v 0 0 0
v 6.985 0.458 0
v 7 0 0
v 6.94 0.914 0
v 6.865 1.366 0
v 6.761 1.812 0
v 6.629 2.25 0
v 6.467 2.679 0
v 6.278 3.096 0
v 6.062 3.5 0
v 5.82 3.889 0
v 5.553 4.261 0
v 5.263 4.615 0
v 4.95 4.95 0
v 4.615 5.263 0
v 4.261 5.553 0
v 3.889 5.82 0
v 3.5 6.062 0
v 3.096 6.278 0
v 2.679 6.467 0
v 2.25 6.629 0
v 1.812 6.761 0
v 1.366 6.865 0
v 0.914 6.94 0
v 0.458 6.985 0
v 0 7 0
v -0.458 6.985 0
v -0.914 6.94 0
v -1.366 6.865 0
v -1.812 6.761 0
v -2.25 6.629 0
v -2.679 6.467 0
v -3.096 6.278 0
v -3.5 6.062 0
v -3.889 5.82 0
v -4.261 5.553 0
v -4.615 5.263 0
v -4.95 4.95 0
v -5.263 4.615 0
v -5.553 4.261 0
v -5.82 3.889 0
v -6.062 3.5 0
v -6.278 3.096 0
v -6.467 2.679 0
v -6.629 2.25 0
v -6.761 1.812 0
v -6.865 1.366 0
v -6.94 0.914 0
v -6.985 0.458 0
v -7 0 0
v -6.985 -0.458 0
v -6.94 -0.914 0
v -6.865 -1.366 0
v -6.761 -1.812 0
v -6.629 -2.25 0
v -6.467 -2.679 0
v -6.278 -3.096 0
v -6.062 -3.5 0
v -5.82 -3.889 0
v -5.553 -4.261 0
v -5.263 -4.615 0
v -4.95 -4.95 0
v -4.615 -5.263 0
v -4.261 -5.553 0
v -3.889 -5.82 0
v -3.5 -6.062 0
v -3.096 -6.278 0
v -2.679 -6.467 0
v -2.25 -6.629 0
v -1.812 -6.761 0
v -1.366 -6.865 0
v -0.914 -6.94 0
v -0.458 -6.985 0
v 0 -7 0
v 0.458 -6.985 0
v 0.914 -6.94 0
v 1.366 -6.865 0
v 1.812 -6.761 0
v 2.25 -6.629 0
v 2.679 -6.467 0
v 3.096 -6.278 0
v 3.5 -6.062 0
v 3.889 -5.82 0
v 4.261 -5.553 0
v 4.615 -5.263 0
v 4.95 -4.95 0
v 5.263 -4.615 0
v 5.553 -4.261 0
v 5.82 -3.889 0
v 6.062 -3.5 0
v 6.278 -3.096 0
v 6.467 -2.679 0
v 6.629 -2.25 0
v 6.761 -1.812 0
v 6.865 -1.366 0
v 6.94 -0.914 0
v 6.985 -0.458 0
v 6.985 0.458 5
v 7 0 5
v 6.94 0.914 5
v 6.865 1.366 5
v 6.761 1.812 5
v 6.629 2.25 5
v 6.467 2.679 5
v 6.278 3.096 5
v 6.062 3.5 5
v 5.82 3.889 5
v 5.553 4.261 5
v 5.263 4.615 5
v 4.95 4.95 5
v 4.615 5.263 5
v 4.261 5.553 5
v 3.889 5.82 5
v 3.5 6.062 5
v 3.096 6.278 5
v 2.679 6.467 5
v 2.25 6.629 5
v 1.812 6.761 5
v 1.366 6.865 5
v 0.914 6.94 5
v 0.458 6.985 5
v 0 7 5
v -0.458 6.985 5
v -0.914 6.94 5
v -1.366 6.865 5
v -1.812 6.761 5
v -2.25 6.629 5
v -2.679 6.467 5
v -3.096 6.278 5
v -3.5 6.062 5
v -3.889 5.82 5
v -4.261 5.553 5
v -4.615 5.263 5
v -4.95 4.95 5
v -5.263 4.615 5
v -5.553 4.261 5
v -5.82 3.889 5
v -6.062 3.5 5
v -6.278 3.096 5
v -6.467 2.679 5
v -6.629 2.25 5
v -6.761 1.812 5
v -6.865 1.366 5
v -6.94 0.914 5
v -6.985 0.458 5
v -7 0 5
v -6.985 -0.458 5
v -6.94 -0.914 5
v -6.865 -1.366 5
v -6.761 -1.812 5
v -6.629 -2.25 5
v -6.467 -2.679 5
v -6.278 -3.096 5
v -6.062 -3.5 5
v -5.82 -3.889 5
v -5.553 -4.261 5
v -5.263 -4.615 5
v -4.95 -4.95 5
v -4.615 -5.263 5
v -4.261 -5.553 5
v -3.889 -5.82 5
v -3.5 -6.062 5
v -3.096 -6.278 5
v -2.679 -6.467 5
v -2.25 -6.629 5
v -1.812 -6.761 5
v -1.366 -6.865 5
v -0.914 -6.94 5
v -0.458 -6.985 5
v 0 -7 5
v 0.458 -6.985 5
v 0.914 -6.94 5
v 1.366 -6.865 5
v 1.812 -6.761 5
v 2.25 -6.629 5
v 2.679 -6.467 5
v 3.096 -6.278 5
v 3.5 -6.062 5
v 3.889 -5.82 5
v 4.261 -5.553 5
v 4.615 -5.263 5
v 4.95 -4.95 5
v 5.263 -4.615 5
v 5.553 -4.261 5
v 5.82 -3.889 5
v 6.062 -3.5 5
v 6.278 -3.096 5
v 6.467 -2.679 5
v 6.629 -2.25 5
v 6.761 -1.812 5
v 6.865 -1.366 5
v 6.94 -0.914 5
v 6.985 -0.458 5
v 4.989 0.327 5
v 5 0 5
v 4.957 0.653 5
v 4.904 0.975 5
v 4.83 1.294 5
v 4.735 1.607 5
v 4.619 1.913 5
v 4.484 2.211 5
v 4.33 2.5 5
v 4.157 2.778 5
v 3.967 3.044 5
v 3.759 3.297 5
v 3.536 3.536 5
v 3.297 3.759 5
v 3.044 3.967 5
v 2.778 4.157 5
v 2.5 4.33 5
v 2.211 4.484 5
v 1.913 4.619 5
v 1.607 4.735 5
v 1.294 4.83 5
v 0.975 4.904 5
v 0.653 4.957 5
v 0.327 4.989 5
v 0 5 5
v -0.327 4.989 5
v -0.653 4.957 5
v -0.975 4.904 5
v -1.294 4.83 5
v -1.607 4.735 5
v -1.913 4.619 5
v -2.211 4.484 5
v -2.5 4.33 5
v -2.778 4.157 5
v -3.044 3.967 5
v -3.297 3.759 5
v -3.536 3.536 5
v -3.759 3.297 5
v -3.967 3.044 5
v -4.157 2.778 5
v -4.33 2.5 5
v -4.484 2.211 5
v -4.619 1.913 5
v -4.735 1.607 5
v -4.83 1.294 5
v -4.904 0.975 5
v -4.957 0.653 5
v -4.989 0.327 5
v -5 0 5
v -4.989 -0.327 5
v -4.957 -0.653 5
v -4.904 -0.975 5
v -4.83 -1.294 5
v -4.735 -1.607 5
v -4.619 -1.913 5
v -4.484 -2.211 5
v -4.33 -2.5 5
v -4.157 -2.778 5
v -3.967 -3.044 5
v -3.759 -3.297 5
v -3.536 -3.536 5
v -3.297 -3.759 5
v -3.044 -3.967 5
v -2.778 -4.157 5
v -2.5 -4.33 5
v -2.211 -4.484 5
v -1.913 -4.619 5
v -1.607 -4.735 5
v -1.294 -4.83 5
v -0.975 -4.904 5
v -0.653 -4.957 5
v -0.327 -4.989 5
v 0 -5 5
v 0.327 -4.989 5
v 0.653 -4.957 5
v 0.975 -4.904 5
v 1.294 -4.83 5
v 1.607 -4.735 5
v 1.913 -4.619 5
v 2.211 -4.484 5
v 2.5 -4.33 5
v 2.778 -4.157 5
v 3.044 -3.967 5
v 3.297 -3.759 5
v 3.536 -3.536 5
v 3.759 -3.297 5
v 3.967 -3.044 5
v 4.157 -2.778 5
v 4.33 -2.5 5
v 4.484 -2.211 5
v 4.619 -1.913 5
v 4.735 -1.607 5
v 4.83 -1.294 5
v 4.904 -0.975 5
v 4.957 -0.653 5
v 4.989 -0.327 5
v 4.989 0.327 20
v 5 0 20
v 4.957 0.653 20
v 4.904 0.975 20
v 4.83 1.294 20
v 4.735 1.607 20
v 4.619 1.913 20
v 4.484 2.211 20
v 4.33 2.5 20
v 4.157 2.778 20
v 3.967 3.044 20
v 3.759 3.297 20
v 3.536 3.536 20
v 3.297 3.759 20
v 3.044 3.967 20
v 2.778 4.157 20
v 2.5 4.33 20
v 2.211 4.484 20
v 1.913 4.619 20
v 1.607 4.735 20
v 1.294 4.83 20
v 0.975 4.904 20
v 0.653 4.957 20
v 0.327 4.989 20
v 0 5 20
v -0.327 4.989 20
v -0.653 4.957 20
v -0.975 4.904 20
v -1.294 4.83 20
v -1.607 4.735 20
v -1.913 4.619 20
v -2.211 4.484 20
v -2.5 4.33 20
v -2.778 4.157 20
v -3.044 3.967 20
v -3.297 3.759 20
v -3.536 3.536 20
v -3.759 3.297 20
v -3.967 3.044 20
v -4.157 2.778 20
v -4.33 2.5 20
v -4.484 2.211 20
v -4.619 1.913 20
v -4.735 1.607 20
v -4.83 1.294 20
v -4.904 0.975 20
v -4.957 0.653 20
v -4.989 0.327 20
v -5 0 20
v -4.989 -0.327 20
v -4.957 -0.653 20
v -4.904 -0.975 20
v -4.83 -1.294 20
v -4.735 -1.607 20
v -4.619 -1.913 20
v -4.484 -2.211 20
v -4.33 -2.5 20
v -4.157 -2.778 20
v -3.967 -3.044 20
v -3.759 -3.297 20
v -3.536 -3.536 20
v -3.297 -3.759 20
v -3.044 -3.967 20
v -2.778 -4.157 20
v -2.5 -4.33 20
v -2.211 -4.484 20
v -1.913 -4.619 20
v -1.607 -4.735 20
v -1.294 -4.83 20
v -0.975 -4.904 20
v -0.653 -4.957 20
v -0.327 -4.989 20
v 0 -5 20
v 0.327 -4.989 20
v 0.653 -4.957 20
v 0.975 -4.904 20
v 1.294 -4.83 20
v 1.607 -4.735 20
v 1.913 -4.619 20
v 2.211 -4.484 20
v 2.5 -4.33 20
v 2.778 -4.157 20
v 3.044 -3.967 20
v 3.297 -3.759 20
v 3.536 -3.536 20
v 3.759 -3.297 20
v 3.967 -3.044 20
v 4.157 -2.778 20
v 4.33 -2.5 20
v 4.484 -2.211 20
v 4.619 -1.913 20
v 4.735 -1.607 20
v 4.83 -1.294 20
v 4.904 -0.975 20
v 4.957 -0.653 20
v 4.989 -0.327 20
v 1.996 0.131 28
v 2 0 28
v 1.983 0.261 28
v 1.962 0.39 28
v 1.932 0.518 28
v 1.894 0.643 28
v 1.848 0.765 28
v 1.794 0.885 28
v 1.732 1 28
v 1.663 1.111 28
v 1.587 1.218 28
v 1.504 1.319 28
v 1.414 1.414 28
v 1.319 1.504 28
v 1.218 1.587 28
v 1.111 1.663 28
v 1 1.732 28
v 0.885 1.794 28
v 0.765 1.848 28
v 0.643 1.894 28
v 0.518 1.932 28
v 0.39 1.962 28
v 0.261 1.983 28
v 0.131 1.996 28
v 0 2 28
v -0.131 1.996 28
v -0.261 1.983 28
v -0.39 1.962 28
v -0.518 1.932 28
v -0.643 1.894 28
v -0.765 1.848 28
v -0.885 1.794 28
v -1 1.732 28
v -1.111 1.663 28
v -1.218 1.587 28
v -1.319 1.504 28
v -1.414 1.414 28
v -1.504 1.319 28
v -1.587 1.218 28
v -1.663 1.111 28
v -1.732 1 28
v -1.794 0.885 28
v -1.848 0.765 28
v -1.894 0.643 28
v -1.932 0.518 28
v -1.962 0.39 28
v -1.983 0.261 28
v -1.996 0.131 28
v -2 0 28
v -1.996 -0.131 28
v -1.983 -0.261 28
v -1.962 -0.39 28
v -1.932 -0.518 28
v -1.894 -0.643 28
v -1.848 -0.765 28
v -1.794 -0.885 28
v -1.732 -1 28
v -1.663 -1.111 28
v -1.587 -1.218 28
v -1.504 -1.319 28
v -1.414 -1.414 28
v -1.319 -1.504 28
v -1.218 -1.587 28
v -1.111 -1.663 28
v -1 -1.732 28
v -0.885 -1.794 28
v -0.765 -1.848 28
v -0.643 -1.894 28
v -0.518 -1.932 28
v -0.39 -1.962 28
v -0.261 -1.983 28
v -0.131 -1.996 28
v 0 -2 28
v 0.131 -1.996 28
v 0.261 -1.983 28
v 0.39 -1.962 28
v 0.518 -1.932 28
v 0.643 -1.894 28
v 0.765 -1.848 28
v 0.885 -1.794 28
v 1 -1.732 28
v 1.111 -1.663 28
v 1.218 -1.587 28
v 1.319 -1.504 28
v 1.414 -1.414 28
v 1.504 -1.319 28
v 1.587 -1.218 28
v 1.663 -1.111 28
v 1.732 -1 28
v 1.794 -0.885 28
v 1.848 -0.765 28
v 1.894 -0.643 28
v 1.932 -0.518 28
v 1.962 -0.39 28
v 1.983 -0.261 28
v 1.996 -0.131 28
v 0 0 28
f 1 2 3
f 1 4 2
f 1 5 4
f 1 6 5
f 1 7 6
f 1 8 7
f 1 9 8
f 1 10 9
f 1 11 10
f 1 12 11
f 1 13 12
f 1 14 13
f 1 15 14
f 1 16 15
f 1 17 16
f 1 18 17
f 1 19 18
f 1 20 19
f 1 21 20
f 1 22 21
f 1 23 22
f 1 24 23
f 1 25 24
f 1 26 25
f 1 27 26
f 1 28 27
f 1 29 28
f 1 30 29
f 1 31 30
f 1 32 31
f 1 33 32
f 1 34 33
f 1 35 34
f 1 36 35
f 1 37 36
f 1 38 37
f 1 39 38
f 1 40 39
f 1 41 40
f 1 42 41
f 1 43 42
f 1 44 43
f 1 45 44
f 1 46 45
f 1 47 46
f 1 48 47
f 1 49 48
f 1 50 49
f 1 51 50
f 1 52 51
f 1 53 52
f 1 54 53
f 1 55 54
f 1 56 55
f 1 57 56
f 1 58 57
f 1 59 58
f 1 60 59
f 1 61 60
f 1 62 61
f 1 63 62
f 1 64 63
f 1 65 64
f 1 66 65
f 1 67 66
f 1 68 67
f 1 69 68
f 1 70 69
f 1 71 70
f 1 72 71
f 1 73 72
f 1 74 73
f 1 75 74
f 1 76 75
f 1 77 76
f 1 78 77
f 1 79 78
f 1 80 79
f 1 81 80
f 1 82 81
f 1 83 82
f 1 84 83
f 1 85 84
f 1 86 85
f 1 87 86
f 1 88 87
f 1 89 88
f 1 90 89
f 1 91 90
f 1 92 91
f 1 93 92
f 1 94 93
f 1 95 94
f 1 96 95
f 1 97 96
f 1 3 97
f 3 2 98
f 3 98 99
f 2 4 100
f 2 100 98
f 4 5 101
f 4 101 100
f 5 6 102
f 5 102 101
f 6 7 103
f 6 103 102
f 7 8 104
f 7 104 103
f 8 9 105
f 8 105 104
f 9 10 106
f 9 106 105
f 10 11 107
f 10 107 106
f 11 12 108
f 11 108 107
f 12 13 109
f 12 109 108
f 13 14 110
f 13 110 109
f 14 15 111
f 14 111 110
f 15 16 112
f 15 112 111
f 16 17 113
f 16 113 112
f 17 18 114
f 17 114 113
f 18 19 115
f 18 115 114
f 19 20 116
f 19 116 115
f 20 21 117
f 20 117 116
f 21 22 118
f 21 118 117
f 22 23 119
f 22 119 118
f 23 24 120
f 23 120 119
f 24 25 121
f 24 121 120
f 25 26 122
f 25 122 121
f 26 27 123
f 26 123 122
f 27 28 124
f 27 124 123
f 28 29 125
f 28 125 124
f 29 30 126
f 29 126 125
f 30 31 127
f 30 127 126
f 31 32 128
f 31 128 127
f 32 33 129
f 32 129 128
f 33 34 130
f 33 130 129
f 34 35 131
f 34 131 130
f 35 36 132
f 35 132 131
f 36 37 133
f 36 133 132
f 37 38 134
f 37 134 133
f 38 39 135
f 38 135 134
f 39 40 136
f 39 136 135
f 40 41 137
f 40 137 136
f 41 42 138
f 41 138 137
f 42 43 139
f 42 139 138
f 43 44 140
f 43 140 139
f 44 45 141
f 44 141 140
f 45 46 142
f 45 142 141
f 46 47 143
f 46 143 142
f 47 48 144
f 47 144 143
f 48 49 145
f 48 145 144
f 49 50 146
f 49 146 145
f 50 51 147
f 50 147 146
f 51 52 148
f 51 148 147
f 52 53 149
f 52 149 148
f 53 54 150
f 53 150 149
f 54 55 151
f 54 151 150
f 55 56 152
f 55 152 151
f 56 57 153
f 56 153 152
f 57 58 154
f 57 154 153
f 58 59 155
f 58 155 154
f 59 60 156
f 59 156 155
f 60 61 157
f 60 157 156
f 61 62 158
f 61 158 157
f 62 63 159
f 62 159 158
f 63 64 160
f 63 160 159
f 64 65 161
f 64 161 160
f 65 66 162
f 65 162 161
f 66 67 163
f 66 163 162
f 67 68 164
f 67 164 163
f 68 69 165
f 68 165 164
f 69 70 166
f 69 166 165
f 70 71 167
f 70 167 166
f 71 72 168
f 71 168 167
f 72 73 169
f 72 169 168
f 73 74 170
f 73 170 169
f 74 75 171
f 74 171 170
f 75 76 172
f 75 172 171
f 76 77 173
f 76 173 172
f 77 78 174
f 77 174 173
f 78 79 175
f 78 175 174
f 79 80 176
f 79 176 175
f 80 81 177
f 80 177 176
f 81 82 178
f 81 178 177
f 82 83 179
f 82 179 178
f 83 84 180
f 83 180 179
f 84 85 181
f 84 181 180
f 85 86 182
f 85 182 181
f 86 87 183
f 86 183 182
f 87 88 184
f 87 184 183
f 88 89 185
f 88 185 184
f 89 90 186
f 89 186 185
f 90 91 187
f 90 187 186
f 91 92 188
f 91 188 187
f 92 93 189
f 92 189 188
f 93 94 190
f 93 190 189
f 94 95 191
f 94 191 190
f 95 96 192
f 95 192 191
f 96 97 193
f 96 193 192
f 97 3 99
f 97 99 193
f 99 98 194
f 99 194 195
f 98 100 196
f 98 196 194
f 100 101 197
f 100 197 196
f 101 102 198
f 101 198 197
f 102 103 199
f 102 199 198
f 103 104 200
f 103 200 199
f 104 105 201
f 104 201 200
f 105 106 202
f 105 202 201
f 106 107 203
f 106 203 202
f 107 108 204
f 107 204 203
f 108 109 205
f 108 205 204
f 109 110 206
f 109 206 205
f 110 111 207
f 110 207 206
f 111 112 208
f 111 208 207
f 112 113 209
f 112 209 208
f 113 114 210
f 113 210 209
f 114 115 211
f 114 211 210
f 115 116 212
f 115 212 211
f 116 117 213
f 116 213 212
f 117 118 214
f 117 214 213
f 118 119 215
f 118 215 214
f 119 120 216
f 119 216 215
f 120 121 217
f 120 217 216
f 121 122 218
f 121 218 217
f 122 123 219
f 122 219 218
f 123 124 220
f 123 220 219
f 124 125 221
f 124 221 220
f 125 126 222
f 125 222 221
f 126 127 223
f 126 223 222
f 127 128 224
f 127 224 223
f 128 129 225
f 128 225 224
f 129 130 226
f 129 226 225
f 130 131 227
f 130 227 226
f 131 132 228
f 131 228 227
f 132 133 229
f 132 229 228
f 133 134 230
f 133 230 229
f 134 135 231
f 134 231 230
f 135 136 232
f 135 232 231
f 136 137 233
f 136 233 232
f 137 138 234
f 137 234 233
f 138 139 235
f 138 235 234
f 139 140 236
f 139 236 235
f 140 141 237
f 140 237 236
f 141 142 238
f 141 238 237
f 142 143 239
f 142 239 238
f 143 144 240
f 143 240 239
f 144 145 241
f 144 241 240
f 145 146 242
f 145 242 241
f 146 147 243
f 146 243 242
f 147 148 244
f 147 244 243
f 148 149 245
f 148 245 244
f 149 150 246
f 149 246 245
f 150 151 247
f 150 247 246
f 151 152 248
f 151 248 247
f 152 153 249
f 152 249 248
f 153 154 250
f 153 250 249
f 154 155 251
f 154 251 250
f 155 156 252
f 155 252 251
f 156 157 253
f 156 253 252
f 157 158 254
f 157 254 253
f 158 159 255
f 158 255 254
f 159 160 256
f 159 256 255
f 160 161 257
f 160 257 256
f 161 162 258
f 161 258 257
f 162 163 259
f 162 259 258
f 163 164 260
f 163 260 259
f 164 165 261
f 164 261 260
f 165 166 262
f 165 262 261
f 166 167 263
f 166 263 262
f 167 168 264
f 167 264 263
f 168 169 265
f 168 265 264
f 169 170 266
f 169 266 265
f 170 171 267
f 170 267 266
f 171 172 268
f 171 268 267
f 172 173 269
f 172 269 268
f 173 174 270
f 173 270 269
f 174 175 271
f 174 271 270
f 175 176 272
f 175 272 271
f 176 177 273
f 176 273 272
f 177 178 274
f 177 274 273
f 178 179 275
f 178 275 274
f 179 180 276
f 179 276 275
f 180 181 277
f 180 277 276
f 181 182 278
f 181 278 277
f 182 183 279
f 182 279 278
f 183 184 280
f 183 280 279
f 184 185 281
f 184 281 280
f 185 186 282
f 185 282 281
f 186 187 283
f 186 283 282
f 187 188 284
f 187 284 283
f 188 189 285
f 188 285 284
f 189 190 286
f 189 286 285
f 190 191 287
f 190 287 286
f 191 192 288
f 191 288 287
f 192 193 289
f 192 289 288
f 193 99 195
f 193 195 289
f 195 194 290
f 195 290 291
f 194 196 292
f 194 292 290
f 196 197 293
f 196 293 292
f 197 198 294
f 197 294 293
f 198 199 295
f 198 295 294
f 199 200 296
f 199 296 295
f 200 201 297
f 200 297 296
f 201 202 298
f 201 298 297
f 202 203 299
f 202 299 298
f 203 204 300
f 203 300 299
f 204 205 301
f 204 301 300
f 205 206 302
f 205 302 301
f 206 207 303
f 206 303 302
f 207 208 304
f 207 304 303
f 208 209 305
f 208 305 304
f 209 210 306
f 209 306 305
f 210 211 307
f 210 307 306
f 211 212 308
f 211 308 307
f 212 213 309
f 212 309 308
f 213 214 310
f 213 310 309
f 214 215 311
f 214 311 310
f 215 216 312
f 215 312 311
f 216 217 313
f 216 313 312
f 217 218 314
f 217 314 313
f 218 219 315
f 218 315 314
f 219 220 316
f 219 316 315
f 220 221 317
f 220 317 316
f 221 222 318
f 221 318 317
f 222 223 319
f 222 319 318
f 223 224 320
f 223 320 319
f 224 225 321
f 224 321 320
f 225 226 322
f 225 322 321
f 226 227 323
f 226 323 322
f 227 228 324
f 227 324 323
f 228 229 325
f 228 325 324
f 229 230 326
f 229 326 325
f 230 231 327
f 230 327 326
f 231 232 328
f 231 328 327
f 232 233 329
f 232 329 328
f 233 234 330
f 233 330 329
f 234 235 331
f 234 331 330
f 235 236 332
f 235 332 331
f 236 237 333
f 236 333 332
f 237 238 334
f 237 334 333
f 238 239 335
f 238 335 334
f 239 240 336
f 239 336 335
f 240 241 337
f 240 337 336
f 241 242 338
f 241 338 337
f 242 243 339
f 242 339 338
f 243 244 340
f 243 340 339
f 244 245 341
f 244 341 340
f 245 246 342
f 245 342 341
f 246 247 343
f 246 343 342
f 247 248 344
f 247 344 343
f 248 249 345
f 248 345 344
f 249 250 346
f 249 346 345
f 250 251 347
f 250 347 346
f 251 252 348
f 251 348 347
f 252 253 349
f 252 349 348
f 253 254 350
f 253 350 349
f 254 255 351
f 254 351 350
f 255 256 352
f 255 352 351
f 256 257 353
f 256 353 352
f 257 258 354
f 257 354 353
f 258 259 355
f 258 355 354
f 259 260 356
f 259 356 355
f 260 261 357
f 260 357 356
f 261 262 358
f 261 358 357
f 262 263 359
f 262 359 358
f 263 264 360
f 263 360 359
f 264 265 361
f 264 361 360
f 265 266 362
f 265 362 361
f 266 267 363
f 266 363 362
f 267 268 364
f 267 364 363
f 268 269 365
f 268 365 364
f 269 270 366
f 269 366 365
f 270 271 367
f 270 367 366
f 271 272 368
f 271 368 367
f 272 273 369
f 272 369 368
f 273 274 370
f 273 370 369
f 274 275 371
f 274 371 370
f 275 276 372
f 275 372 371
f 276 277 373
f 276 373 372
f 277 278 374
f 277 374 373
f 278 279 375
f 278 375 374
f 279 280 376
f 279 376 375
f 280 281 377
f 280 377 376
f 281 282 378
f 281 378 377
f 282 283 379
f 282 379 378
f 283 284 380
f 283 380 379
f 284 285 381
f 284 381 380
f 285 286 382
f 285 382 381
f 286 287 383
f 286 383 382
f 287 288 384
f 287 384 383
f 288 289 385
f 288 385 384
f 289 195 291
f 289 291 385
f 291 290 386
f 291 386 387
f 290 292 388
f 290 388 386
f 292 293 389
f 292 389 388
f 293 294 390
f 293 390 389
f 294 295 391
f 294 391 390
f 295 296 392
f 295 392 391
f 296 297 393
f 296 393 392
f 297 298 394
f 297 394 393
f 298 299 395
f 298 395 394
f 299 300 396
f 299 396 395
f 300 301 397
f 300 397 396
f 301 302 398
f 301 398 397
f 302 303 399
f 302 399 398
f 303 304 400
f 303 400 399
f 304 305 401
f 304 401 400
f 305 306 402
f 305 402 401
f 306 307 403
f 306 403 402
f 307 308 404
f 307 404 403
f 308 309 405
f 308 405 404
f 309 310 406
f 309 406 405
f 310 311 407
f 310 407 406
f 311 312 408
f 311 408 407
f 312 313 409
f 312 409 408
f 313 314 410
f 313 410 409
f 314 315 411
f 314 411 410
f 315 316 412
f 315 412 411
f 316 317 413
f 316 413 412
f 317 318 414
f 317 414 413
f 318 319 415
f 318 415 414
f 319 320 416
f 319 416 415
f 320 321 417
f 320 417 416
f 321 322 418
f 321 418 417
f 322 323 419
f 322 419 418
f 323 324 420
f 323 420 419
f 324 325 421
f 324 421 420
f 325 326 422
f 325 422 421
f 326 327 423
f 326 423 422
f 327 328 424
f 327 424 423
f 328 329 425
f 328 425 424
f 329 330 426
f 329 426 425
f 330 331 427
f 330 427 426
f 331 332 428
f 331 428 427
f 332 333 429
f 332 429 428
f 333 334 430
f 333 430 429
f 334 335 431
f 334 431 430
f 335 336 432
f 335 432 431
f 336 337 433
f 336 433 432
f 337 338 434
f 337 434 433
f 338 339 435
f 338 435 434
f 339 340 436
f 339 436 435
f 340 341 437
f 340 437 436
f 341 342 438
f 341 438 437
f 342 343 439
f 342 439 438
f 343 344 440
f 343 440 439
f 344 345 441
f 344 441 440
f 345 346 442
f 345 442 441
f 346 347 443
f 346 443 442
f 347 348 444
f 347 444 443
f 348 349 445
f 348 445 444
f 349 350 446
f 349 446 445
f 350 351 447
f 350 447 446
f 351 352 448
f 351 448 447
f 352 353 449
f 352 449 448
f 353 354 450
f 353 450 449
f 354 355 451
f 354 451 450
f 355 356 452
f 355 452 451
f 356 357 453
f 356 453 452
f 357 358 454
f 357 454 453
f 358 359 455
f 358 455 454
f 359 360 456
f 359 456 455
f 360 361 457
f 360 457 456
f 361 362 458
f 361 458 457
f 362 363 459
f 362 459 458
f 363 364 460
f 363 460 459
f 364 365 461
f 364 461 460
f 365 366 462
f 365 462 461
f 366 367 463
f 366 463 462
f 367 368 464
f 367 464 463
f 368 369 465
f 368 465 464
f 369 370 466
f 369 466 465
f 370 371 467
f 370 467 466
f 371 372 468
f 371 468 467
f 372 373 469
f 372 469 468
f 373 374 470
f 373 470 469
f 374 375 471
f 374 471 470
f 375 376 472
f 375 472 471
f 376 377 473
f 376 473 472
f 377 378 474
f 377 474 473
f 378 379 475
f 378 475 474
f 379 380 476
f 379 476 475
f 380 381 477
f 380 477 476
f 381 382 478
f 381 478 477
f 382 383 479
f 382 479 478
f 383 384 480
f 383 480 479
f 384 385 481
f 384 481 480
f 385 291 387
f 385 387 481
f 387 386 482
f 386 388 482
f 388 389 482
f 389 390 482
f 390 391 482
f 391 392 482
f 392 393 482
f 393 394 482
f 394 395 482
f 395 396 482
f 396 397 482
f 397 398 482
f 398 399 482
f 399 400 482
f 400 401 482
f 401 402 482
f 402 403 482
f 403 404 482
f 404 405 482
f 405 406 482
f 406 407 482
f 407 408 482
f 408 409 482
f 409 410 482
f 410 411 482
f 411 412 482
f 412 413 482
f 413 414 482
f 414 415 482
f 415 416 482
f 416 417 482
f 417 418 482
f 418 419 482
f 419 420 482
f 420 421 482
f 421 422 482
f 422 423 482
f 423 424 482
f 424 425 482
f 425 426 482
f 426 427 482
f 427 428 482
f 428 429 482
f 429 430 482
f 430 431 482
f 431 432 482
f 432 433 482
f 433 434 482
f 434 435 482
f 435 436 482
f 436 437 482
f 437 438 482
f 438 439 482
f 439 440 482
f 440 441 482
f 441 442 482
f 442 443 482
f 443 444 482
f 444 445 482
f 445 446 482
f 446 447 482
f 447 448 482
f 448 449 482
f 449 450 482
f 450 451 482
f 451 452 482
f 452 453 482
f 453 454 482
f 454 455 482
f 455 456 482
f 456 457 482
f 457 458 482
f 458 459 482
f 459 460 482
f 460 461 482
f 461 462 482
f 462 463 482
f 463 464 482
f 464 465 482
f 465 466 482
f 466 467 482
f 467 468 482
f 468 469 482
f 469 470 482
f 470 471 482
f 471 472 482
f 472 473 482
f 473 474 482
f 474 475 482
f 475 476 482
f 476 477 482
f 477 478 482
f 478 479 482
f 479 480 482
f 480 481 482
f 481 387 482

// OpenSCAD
// Original MechIntel educational model. CC0-1.0. Units: mm.
// Not a standardized or load-rated component.
$fn=96;
// Section points: [radius, height], mm. Edit to change the profile.
section=[[0, 0], [7, 0], [7, 5], [5, 5], [5, 20], [2, 28], [0, 28]];
rotate_extrude($fn=96) polygon(points=section);
